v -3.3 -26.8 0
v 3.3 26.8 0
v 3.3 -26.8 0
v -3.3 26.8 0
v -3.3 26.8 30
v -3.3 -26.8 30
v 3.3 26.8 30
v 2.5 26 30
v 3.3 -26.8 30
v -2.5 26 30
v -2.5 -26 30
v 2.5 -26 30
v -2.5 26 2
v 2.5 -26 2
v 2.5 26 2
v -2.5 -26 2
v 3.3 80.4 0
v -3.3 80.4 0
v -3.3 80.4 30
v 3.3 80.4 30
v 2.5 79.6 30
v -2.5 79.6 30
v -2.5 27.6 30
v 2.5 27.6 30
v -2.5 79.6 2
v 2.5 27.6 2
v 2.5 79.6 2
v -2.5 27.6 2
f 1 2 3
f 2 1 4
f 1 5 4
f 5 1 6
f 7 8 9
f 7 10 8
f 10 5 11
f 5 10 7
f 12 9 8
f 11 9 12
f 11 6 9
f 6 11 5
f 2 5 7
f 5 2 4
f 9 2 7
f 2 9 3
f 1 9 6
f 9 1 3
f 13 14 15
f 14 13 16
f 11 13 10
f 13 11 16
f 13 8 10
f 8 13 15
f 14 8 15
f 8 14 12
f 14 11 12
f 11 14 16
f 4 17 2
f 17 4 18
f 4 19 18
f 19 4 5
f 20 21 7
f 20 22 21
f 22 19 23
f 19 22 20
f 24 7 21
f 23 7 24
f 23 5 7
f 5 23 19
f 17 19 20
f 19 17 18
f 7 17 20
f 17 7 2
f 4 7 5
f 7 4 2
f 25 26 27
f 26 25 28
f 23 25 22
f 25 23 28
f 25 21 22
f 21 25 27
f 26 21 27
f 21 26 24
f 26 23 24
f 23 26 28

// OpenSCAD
card_holder_space = [5.00, 52.00];
inner_space = [1.6, 1.6];

height = 30.00;
base_h = 2.00;

module card_holder() {
    difference() {
        linear_extrude(height)
            square(card_holder_space + inner_space, center = true);
        translate([0, 0, base_h])
            linear_extrude(height)
                square(card_holder_space, center = true);
    }
}

card_holder();
translate([0, card_holder_space[1] + inner_space[1], 0])
    card_holder();
